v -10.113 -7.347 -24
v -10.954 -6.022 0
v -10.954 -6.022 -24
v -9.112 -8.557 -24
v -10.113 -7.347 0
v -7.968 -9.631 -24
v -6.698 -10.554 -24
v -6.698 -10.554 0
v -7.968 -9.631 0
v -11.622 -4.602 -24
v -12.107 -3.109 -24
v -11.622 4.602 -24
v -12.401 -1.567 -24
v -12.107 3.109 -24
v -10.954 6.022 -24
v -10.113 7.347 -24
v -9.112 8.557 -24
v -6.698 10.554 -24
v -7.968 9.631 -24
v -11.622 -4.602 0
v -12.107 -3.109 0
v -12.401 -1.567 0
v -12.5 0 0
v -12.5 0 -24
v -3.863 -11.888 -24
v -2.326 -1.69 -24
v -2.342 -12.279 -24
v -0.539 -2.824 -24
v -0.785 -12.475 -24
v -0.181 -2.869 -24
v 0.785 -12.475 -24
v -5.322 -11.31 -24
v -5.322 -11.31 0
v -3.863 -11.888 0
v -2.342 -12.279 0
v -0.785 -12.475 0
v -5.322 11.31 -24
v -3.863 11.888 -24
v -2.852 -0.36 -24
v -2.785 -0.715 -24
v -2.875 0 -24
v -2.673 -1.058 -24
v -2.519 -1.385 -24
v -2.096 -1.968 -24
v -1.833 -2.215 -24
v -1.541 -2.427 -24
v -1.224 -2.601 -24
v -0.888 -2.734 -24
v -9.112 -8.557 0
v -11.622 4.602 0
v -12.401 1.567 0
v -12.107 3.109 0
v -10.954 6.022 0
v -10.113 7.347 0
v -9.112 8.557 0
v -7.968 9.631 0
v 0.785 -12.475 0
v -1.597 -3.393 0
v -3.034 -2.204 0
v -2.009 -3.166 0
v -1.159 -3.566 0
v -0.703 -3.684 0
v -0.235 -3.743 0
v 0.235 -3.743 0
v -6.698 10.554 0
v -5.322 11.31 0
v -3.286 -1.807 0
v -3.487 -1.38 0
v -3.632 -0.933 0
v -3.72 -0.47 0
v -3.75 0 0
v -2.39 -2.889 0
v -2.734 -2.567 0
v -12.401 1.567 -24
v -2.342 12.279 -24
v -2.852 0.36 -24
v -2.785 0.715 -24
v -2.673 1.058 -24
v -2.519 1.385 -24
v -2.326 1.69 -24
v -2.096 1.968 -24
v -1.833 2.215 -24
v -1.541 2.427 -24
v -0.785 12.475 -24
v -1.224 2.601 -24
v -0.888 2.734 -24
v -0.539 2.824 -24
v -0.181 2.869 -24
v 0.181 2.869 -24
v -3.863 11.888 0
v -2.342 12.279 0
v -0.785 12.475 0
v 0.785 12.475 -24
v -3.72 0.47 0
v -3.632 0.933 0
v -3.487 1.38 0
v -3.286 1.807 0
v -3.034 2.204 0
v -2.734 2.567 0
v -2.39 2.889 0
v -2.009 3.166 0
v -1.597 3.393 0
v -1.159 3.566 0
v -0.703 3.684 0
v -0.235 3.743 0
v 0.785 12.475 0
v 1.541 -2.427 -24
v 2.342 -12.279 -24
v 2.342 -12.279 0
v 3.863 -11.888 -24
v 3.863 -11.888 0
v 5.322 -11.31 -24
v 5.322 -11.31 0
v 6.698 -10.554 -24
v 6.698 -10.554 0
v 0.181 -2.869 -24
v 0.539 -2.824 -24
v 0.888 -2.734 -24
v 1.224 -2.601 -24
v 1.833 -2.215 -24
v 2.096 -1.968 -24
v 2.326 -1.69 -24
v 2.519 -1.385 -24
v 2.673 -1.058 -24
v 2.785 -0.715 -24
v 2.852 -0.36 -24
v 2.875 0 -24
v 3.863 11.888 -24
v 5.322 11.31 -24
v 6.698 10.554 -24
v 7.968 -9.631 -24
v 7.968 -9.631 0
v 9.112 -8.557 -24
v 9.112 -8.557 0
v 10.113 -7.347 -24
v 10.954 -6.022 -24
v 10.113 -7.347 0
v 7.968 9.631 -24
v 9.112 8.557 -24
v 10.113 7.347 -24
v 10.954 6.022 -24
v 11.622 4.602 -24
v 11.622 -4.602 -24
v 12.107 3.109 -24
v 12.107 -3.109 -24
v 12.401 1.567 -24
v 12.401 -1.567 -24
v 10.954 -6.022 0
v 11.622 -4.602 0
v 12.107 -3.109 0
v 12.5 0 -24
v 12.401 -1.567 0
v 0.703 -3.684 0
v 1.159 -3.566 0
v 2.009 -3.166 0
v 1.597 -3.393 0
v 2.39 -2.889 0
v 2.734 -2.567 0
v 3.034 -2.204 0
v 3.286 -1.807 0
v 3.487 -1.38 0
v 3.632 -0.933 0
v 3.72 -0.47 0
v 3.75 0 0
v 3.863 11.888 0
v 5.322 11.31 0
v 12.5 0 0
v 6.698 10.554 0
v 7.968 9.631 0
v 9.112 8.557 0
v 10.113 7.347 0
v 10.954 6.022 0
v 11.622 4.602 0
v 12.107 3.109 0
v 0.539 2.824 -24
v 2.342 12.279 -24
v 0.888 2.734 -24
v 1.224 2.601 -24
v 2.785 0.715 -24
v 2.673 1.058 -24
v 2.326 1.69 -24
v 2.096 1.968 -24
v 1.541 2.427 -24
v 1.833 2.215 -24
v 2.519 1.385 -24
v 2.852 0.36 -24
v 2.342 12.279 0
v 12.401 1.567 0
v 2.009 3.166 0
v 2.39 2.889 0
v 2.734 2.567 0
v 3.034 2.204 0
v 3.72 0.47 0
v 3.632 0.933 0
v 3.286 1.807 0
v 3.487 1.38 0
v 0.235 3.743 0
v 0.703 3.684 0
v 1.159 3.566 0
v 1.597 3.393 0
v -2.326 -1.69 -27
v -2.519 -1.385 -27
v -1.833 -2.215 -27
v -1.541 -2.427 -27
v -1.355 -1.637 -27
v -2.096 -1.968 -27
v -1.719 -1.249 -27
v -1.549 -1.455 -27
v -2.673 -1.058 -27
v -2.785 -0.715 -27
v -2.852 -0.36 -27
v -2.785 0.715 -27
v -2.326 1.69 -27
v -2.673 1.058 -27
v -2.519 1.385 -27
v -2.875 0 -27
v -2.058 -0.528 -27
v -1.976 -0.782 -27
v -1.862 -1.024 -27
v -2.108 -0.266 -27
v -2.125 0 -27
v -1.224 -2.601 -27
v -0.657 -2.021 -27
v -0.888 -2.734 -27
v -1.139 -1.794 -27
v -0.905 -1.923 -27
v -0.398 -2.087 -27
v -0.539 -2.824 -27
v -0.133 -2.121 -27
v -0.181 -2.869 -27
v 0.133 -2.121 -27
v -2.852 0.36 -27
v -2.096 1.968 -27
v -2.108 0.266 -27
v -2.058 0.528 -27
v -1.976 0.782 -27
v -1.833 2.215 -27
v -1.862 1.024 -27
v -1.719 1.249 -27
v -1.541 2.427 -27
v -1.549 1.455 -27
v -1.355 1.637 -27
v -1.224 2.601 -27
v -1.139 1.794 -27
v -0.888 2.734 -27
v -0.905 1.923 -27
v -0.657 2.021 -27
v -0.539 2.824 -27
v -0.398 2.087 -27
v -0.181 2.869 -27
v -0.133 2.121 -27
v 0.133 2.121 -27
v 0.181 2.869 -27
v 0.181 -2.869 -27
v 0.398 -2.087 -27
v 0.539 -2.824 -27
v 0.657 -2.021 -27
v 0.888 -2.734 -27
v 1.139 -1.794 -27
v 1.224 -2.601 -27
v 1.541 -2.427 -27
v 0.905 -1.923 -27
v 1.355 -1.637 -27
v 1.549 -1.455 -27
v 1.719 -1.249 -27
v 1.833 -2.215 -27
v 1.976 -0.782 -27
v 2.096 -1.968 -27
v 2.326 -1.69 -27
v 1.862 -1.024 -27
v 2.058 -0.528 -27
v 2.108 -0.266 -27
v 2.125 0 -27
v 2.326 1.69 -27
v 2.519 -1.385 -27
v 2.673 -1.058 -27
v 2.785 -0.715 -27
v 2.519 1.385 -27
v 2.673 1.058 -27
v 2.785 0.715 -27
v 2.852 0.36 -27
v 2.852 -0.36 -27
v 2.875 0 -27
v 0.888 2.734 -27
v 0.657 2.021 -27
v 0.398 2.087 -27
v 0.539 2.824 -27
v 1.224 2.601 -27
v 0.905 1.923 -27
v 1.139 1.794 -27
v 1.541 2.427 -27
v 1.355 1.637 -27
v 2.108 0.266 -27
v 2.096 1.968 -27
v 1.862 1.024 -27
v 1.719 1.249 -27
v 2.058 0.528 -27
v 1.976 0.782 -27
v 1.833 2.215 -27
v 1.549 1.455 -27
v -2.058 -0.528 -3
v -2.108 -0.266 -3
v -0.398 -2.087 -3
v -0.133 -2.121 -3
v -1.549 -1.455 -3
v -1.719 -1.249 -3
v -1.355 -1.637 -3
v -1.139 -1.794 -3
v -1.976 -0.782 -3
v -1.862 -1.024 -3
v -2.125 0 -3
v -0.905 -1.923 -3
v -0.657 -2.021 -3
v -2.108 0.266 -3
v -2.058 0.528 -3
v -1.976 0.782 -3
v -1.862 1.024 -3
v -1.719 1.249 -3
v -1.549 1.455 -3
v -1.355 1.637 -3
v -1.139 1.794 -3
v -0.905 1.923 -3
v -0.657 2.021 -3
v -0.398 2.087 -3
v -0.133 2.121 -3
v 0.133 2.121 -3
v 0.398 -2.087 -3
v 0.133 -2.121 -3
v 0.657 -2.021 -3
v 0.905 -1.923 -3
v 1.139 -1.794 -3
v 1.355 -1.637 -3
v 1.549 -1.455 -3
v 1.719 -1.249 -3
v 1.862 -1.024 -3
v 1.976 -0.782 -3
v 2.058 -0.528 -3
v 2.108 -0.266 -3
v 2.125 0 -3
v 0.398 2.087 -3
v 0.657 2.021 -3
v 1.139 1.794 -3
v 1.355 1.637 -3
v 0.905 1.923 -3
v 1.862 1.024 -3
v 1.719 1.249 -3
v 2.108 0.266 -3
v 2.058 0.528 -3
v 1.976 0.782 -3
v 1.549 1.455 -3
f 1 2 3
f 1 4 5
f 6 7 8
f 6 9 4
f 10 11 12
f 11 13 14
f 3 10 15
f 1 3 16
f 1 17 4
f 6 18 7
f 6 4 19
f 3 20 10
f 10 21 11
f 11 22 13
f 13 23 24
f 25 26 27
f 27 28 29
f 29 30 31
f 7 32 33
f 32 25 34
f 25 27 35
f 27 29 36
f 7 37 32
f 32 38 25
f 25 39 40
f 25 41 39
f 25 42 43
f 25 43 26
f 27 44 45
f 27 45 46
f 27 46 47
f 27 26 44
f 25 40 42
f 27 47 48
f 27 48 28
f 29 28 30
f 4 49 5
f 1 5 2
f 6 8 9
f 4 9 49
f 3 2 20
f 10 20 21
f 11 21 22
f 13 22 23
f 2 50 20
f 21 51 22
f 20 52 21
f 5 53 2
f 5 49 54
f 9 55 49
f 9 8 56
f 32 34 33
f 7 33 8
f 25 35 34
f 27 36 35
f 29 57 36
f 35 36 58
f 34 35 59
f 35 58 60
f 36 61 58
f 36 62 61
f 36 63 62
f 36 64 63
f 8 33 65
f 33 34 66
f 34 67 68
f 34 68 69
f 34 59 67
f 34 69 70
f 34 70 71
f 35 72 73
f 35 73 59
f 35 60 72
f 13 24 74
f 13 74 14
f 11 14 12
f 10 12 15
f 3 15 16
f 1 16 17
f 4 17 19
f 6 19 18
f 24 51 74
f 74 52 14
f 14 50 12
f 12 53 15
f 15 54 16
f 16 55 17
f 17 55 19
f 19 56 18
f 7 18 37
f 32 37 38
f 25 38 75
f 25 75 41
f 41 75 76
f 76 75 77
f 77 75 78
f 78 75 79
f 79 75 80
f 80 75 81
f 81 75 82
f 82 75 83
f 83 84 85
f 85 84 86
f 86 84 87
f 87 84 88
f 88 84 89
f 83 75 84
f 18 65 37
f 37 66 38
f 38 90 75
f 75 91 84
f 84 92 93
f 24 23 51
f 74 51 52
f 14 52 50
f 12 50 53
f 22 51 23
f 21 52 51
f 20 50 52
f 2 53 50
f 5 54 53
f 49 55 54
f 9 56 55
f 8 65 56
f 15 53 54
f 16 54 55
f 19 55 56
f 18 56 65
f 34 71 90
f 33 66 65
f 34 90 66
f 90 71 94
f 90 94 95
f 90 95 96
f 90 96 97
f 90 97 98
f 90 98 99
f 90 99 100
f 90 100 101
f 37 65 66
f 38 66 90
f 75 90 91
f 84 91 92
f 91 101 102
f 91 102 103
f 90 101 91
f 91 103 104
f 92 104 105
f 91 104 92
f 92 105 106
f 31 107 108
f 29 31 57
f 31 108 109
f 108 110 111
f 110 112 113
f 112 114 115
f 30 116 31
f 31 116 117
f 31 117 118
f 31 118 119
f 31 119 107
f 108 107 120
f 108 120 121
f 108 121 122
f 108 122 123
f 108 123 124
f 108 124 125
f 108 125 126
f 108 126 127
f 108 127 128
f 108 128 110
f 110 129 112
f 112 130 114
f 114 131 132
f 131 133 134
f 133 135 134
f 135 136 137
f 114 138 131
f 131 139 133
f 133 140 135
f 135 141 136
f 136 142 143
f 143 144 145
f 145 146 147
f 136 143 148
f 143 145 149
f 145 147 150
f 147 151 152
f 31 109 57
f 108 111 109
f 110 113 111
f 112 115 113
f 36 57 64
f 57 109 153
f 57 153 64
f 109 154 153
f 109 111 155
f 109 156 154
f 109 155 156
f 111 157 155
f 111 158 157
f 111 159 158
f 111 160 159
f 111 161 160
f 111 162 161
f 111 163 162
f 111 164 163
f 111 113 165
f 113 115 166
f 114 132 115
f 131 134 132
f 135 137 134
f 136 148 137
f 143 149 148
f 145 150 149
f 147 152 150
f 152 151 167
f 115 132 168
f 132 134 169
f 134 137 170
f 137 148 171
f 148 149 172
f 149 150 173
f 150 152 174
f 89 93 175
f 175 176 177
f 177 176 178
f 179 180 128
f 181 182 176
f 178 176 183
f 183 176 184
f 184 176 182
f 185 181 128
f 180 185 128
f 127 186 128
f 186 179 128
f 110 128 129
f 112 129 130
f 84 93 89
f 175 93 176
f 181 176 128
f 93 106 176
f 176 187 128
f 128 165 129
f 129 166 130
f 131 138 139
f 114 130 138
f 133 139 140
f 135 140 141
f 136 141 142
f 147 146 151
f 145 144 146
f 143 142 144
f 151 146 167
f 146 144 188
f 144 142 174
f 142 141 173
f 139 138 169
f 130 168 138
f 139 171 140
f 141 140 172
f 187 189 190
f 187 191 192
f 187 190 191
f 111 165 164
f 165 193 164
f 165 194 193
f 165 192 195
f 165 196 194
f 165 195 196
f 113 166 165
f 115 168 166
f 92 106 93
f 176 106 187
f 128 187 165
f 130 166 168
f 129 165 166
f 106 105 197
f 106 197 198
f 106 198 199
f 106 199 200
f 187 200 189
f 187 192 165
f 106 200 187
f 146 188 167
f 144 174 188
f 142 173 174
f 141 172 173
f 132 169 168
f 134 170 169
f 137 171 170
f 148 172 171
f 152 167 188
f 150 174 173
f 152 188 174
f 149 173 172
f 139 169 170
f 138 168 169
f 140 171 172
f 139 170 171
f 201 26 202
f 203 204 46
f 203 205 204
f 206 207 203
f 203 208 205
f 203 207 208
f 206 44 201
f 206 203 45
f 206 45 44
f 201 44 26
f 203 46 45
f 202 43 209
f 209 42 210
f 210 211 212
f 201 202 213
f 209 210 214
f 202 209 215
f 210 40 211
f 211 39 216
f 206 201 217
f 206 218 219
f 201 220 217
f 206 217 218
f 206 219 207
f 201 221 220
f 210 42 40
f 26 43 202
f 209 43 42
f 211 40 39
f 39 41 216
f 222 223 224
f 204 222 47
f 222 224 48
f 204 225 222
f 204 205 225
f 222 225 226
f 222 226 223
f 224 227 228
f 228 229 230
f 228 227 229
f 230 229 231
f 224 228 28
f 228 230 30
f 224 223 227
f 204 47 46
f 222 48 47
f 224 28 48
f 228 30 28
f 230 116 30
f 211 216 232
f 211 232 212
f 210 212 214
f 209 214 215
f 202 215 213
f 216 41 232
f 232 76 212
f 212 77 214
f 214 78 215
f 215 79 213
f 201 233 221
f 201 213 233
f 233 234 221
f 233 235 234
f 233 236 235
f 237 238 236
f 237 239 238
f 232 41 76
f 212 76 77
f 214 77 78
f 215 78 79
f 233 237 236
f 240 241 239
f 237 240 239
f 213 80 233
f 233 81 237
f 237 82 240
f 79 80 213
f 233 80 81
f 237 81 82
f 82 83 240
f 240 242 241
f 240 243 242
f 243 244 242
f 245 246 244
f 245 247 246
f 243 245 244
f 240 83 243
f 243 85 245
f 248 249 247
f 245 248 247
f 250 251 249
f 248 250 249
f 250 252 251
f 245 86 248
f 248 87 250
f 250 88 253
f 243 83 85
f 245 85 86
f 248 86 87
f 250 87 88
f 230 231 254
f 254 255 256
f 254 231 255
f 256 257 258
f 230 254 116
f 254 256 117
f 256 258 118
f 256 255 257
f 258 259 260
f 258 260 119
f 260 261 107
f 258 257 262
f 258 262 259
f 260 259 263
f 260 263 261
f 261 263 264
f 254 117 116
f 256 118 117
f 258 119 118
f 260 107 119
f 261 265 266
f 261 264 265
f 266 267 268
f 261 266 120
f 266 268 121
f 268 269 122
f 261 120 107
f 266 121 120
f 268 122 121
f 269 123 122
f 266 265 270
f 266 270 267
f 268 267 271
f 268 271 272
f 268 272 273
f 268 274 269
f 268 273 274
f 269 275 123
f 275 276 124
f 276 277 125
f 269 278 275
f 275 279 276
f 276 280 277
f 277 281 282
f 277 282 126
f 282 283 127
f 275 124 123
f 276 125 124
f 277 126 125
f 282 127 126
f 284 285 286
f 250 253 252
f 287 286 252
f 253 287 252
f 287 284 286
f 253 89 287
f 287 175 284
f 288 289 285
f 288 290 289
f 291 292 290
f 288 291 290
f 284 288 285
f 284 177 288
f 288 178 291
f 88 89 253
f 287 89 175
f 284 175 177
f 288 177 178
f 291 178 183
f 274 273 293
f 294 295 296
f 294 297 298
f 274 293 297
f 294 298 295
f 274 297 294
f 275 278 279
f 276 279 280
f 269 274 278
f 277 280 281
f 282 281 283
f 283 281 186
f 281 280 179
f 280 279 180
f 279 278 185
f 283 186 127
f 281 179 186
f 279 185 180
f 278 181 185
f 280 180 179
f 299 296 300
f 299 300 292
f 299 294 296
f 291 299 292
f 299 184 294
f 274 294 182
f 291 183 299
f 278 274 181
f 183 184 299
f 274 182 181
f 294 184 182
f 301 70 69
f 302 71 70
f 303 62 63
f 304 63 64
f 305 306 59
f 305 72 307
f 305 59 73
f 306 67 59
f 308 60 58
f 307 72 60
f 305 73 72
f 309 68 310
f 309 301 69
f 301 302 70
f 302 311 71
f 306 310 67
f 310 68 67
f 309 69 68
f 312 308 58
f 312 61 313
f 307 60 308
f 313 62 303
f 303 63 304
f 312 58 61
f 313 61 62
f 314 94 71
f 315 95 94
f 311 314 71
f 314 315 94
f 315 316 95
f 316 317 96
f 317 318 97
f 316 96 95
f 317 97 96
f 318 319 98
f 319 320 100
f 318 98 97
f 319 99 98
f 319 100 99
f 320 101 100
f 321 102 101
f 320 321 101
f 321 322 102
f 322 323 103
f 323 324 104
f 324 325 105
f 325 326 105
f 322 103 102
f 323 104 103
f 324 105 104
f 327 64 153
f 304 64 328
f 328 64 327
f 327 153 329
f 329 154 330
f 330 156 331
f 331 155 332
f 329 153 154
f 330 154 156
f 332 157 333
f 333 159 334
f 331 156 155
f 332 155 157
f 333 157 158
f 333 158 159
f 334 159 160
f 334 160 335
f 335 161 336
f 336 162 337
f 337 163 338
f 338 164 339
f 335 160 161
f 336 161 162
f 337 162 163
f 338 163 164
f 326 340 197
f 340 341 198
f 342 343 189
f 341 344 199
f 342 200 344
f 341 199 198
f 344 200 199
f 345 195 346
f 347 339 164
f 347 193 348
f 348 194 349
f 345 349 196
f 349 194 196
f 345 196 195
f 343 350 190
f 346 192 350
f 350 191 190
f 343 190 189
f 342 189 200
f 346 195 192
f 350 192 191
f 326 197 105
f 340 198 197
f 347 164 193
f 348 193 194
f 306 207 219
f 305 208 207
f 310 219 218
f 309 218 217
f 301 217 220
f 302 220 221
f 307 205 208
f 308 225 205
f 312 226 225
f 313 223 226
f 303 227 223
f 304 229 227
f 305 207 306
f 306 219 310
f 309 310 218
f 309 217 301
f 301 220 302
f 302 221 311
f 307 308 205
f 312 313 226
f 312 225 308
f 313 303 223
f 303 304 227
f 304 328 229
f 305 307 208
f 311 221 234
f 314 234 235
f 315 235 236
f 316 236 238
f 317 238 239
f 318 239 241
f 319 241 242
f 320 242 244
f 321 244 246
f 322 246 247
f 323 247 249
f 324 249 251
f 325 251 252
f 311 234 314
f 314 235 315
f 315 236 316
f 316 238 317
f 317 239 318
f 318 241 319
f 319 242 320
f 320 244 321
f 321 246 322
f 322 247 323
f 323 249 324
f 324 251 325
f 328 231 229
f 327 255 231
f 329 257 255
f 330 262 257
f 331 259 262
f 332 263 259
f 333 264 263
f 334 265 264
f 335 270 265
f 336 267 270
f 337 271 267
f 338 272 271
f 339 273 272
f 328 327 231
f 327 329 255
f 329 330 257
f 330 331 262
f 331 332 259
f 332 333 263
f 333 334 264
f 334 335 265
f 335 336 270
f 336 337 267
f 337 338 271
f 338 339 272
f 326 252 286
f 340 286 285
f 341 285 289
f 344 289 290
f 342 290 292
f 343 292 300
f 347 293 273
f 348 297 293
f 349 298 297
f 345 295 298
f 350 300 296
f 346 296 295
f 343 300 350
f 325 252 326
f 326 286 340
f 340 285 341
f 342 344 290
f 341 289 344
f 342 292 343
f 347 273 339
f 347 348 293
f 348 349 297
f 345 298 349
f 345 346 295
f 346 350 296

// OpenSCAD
$fn = 50;

difference() {
	union() {
		translate(v = [0, 0, -24.0]) {
			cylinder(h = 24, r = 12.5);
		}
		#translate(v = [0, 0, -27.0]) {
			cylinder(h = 27, r = 2.875);
		}
	}
	union() {
		translate(v = [0, 0, 0]) {
			rotate(a = [0, 0, 0]) {
				difference() {
					union() {
						translate(v = [0, 0, -27.0]) {
							cylinder(h = 27, r = 2.0);
						}
						translate(v = [0, 0, -3]) {
							cylinder(h = 3, r1 = 2.125, r2 = 3.75);
						}
						translate(v = [0, 0, -27.0]) {
							cylinder(h = 27, r = 2.125);
						}
						translate(v = [0, 0, -27.0]) {
							cylinder(h = 27, r = 2.0);
						}
					}
					union();
				}
			}
		}
	}
}
